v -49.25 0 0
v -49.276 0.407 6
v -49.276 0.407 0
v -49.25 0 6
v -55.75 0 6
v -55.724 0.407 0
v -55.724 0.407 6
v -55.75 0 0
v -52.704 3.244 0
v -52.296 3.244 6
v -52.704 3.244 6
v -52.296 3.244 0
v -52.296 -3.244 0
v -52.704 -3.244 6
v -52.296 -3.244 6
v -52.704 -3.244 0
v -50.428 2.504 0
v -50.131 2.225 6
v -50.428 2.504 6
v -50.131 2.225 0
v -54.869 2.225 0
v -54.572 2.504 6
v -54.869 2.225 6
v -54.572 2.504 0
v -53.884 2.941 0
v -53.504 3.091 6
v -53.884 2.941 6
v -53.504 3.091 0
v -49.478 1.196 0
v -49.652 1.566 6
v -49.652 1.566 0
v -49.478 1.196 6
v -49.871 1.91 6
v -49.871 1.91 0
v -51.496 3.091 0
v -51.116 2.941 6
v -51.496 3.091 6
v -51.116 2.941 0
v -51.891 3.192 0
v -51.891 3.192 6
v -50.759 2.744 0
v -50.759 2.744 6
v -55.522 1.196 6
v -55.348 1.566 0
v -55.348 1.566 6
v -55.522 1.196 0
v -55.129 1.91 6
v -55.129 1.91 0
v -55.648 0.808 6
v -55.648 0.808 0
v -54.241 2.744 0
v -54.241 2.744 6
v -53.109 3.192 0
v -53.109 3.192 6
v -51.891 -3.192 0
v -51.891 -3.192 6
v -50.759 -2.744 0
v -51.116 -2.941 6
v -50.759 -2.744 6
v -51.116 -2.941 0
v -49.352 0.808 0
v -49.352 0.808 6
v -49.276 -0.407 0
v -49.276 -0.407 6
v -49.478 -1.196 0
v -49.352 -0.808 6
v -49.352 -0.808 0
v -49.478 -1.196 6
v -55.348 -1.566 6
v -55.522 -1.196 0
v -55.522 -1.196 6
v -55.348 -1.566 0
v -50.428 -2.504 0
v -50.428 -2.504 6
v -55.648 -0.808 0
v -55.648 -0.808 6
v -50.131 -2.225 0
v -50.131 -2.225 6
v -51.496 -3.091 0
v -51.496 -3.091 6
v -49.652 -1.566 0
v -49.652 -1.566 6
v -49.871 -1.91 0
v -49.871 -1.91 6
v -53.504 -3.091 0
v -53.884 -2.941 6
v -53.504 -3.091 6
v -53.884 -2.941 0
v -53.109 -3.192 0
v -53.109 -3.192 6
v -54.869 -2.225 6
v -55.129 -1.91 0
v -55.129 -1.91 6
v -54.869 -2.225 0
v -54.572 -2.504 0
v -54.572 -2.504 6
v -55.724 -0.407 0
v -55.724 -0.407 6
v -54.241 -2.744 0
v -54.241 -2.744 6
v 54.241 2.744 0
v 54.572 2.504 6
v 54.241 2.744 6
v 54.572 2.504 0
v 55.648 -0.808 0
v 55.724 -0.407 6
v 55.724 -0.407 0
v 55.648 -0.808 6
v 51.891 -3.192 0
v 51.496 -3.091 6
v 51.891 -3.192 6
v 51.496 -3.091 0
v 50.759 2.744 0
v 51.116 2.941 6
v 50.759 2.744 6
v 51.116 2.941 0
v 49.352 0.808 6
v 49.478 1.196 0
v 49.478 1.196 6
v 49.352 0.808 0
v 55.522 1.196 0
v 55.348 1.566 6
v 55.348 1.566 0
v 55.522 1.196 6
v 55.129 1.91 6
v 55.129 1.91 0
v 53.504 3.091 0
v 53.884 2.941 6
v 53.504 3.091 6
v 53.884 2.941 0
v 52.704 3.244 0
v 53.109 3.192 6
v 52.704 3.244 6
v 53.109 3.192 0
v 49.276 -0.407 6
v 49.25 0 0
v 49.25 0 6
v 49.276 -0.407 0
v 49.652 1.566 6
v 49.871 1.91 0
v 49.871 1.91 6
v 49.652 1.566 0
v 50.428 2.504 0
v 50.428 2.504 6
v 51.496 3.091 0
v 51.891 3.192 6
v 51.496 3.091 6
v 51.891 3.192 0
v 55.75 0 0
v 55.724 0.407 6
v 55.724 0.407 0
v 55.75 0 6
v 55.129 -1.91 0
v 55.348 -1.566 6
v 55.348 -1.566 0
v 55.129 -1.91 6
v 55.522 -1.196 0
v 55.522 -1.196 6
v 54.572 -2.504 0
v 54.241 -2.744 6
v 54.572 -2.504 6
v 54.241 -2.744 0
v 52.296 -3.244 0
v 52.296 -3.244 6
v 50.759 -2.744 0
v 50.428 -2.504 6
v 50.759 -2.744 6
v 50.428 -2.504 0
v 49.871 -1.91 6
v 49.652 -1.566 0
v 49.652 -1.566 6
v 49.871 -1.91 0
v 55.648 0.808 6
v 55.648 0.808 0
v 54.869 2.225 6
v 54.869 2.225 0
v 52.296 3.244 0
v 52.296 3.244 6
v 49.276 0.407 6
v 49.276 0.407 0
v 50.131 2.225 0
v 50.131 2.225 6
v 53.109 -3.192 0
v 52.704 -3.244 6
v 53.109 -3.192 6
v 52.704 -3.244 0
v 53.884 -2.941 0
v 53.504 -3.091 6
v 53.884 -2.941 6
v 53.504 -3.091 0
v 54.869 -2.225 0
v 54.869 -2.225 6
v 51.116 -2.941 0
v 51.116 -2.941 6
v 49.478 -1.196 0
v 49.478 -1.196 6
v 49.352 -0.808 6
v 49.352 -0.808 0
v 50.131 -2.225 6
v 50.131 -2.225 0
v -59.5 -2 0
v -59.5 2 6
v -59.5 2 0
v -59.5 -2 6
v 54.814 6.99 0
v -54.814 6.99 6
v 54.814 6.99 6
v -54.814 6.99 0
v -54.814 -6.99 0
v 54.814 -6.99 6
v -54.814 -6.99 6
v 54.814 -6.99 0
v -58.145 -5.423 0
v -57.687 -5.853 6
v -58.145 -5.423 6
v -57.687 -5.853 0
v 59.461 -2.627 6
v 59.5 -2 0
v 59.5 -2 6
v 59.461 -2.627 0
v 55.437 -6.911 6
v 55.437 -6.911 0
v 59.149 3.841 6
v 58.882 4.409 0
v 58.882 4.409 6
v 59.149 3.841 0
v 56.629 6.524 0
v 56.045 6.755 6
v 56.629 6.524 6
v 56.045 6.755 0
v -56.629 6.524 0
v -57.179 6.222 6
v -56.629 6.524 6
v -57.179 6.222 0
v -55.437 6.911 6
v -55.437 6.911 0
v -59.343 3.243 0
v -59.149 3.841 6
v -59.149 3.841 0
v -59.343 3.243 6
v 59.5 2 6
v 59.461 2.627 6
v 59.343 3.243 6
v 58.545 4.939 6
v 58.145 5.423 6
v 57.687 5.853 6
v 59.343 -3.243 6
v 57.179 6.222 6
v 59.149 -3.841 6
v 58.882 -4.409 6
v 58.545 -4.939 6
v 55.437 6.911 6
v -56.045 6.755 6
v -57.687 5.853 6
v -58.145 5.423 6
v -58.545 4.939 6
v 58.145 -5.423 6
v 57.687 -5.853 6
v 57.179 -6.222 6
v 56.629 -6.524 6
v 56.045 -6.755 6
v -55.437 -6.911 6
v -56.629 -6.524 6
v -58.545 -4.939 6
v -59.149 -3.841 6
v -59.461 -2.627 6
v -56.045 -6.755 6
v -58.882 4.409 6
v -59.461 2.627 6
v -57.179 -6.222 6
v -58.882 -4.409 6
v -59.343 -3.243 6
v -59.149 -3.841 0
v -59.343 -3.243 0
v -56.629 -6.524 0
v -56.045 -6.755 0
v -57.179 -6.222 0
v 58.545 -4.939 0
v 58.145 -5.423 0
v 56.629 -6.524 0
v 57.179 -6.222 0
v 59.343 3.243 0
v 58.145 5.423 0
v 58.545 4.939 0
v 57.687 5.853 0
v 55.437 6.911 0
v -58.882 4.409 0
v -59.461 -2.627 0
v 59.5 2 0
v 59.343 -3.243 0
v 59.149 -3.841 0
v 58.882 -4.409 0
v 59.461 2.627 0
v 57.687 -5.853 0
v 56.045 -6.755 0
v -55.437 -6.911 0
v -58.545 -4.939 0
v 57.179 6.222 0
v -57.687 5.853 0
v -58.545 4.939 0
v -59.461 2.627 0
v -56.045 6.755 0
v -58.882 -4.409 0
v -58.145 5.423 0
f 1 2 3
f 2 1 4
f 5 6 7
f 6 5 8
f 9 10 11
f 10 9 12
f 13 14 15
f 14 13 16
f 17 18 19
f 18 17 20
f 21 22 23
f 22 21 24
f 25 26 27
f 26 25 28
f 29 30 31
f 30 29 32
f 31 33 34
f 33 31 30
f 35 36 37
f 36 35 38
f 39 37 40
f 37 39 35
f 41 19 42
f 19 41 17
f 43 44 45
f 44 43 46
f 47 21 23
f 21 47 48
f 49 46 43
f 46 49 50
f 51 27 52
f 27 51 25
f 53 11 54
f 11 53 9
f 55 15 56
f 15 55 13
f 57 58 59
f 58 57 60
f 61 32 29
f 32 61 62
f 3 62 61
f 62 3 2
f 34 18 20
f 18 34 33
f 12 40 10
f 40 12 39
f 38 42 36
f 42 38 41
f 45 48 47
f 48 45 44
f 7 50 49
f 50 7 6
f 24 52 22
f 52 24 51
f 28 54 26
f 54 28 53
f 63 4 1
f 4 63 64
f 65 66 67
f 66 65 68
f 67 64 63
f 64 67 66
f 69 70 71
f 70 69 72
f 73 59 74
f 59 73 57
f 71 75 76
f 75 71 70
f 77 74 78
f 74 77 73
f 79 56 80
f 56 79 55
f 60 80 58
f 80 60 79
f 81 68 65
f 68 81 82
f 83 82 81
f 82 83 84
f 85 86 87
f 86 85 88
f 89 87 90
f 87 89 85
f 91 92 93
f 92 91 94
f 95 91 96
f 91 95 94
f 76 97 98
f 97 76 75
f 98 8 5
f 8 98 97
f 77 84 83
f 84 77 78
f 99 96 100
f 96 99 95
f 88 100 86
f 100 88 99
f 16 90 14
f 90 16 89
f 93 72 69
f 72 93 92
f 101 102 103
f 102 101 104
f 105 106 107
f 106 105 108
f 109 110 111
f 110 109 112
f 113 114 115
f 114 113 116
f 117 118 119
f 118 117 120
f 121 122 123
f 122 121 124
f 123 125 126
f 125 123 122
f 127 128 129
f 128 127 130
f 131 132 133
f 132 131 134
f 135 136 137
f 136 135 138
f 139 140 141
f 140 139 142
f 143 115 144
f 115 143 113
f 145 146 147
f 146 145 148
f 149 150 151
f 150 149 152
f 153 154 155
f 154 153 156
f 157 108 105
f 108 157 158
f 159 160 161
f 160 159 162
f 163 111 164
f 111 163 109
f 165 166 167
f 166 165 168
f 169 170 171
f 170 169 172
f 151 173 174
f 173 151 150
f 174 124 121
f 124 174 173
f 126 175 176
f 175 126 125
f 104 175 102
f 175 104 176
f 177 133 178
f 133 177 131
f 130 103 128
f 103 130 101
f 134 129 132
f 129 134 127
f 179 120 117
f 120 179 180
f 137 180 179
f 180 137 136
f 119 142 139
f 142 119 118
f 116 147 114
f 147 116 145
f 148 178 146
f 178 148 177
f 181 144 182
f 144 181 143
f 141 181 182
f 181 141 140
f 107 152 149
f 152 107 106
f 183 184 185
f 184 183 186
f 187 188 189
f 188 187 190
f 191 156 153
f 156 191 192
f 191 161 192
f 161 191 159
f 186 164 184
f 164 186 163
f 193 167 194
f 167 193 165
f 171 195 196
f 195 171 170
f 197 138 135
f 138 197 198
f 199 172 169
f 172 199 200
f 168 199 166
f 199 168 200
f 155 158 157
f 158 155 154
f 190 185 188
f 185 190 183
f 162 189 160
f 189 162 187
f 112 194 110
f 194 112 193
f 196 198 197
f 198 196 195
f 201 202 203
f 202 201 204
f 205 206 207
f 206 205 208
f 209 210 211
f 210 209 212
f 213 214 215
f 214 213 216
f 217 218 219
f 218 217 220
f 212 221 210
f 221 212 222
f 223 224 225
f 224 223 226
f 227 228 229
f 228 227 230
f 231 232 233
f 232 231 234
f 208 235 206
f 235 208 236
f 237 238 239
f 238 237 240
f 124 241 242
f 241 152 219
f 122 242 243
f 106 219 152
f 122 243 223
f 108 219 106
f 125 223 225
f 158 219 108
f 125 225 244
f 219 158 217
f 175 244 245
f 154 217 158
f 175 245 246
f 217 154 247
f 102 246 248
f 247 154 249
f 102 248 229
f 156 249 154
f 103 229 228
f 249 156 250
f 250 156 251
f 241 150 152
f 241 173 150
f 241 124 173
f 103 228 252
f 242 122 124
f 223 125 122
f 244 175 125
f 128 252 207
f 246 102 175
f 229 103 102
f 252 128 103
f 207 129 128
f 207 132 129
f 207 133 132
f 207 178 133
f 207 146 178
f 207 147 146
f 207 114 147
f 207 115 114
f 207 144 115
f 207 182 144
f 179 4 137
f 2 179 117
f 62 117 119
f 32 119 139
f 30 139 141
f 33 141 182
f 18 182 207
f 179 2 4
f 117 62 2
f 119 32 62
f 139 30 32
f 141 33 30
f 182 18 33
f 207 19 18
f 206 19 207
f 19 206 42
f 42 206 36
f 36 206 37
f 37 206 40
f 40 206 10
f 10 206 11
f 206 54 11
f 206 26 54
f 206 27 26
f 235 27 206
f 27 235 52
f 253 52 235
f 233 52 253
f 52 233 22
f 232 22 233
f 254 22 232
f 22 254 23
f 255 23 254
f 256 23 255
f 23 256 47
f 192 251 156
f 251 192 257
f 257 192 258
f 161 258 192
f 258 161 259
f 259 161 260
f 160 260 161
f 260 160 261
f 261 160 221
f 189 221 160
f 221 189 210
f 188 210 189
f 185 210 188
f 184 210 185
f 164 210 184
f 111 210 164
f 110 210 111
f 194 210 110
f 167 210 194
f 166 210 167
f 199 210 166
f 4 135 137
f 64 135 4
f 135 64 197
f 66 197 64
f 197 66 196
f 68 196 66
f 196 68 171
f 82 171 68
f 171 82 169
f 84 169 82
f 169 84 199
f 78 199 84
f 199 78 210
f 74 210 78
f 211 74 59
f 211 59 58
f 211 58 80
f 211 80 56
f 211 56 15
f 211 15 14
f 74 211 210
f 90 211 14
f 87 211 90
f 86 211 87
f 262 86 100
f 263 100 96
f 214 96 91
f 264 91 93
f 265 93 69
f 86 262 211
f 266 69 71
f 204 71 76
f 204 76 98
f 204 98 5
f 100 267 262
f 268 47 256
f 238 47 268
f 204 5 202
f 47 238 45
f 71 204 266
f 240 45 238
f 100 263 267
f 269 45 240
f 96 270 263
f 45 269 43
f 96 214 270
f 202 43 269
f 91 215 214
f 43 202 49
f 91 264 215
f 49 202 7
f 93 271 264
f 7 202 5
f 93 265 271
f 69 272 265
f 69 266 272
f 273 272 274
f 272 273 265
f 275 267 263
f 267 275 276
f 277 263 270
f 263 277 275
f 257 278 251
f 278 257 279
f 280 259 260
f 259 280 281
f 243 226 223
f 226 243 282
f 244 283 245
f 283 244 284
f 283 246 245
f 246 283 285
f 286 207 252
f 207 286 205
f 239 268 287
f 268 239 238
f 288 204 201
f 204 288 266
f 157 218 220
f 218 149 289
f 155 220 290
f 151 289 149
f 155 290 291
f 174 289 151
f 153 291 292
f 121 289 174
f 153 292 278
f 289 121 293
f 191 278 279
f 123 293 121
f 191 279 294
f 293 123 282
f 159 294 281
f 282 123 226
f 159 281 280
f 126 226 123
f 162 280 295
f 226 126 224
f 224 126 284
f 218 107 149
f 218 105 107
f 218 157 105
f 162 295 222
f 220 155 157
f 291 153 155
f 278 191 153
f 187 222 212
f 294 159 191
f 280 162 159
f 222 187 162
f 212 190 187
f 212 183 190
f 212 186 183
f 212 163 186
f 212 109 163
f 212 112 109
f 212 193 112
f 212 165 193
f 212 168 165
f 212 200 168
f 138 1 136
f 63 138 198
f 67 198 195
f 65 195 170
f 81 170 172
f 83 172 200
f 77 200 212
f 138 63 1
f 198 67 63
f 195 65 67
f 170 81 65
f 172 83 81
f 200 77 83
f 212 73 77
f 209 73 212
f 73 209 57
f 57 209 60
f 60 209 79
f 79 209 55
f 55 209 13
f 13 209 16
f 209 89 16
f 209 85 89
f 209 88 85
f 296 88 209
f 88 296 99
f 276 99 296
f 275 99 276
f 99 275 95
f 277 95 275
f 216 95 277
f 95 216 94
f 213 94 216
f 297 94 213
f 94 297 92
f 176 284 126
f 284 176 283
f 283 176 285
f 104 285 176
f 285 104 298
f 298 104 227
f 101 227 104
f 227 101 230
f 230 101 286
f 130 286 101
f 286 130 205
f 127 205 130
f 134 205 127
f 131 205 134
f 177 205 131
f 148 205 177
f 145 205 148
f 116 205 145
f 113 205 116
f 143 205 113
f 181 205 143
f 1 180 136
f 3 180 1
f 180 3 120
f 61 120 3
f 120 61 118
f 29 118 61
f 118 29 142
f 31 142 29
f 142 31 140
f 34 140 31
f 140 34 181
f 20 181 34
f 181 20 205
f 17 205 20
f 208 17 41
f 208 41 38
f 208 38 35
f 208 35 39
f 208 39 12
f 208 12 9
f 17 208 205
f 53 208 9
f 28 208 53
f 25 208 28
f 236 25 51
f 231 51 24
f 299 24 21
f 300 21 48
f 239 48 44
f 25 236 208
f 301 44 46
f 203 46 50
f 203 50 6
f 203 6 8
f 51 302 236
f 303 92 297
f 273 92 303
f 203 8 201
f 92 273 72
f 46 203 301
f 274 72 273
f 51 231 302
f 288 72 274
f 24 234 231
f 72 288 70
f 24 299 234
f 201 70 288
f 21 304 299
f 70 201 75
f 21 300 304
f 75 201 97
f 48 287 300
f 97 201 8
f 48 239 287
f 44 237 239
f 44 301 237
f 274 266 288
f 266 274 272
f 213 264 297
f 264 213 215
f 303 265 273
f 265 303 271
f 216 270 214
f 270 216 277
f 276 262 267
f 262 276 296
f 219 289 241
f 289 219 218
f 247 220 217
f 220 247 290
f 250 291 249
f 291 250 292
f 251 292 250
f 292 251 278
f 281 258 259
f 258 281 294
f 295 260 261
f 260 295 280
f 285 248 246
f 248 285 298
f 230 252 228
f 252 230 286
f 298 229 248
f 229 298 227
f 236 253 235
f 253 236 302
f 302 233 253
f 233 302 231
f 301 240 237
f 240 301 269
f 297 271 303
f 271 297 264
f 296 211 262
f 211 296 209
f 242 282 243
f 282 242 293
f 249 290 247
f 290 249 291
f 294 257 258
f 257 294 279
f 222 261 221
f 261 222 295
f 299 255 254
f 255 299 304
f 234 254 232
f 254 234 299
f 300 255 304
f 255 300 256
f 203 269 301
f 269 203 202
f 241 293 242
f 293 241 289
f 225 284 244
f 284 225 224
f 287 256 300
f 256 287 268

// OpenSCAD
$fn = 50;


difference() {
	union() {
		hull() {
			translate(v = [-54.5000000000, 2.0000000000, 0]) {
				cylinder(h = 6, r = 5);
			}
			translate(v = [54.5000000000, 2.0000000000, 0]) {
				cylinder(h = 6, r = 5);
			}
			translate(v = [-54.5000000000, -2.0000000000, 0]) {
				cylinder(h = 6, r = 5);
			}
			translate(v = [54.5000000000, -2.0000000000, 0]) {
				cylinder(h = 6, r = 5);
			}
		}
	}
	union() {
		translate(v = [-52.5000000000, 0.0000000000, -100.0000000000]) {
			cylinder(h = 200, r = 3.2500000000);
		}
		translate(v = [-52.5000000000, 0.0000000000, -100.0000000000]) {
			cylinder(h = 200, r = 3.2500000000);
		}
		translate(v = [52.5000000000, 0.0000000000, -100.0000000000]) {
			cylinder(h = 200, r = 3.2500000000);
		}
		translate(v = [52.5000000000, 0.0000000000, -100.0000000000]) {
			cylinder(h = 200, r = 3.2500000000);
		}
	}
}
